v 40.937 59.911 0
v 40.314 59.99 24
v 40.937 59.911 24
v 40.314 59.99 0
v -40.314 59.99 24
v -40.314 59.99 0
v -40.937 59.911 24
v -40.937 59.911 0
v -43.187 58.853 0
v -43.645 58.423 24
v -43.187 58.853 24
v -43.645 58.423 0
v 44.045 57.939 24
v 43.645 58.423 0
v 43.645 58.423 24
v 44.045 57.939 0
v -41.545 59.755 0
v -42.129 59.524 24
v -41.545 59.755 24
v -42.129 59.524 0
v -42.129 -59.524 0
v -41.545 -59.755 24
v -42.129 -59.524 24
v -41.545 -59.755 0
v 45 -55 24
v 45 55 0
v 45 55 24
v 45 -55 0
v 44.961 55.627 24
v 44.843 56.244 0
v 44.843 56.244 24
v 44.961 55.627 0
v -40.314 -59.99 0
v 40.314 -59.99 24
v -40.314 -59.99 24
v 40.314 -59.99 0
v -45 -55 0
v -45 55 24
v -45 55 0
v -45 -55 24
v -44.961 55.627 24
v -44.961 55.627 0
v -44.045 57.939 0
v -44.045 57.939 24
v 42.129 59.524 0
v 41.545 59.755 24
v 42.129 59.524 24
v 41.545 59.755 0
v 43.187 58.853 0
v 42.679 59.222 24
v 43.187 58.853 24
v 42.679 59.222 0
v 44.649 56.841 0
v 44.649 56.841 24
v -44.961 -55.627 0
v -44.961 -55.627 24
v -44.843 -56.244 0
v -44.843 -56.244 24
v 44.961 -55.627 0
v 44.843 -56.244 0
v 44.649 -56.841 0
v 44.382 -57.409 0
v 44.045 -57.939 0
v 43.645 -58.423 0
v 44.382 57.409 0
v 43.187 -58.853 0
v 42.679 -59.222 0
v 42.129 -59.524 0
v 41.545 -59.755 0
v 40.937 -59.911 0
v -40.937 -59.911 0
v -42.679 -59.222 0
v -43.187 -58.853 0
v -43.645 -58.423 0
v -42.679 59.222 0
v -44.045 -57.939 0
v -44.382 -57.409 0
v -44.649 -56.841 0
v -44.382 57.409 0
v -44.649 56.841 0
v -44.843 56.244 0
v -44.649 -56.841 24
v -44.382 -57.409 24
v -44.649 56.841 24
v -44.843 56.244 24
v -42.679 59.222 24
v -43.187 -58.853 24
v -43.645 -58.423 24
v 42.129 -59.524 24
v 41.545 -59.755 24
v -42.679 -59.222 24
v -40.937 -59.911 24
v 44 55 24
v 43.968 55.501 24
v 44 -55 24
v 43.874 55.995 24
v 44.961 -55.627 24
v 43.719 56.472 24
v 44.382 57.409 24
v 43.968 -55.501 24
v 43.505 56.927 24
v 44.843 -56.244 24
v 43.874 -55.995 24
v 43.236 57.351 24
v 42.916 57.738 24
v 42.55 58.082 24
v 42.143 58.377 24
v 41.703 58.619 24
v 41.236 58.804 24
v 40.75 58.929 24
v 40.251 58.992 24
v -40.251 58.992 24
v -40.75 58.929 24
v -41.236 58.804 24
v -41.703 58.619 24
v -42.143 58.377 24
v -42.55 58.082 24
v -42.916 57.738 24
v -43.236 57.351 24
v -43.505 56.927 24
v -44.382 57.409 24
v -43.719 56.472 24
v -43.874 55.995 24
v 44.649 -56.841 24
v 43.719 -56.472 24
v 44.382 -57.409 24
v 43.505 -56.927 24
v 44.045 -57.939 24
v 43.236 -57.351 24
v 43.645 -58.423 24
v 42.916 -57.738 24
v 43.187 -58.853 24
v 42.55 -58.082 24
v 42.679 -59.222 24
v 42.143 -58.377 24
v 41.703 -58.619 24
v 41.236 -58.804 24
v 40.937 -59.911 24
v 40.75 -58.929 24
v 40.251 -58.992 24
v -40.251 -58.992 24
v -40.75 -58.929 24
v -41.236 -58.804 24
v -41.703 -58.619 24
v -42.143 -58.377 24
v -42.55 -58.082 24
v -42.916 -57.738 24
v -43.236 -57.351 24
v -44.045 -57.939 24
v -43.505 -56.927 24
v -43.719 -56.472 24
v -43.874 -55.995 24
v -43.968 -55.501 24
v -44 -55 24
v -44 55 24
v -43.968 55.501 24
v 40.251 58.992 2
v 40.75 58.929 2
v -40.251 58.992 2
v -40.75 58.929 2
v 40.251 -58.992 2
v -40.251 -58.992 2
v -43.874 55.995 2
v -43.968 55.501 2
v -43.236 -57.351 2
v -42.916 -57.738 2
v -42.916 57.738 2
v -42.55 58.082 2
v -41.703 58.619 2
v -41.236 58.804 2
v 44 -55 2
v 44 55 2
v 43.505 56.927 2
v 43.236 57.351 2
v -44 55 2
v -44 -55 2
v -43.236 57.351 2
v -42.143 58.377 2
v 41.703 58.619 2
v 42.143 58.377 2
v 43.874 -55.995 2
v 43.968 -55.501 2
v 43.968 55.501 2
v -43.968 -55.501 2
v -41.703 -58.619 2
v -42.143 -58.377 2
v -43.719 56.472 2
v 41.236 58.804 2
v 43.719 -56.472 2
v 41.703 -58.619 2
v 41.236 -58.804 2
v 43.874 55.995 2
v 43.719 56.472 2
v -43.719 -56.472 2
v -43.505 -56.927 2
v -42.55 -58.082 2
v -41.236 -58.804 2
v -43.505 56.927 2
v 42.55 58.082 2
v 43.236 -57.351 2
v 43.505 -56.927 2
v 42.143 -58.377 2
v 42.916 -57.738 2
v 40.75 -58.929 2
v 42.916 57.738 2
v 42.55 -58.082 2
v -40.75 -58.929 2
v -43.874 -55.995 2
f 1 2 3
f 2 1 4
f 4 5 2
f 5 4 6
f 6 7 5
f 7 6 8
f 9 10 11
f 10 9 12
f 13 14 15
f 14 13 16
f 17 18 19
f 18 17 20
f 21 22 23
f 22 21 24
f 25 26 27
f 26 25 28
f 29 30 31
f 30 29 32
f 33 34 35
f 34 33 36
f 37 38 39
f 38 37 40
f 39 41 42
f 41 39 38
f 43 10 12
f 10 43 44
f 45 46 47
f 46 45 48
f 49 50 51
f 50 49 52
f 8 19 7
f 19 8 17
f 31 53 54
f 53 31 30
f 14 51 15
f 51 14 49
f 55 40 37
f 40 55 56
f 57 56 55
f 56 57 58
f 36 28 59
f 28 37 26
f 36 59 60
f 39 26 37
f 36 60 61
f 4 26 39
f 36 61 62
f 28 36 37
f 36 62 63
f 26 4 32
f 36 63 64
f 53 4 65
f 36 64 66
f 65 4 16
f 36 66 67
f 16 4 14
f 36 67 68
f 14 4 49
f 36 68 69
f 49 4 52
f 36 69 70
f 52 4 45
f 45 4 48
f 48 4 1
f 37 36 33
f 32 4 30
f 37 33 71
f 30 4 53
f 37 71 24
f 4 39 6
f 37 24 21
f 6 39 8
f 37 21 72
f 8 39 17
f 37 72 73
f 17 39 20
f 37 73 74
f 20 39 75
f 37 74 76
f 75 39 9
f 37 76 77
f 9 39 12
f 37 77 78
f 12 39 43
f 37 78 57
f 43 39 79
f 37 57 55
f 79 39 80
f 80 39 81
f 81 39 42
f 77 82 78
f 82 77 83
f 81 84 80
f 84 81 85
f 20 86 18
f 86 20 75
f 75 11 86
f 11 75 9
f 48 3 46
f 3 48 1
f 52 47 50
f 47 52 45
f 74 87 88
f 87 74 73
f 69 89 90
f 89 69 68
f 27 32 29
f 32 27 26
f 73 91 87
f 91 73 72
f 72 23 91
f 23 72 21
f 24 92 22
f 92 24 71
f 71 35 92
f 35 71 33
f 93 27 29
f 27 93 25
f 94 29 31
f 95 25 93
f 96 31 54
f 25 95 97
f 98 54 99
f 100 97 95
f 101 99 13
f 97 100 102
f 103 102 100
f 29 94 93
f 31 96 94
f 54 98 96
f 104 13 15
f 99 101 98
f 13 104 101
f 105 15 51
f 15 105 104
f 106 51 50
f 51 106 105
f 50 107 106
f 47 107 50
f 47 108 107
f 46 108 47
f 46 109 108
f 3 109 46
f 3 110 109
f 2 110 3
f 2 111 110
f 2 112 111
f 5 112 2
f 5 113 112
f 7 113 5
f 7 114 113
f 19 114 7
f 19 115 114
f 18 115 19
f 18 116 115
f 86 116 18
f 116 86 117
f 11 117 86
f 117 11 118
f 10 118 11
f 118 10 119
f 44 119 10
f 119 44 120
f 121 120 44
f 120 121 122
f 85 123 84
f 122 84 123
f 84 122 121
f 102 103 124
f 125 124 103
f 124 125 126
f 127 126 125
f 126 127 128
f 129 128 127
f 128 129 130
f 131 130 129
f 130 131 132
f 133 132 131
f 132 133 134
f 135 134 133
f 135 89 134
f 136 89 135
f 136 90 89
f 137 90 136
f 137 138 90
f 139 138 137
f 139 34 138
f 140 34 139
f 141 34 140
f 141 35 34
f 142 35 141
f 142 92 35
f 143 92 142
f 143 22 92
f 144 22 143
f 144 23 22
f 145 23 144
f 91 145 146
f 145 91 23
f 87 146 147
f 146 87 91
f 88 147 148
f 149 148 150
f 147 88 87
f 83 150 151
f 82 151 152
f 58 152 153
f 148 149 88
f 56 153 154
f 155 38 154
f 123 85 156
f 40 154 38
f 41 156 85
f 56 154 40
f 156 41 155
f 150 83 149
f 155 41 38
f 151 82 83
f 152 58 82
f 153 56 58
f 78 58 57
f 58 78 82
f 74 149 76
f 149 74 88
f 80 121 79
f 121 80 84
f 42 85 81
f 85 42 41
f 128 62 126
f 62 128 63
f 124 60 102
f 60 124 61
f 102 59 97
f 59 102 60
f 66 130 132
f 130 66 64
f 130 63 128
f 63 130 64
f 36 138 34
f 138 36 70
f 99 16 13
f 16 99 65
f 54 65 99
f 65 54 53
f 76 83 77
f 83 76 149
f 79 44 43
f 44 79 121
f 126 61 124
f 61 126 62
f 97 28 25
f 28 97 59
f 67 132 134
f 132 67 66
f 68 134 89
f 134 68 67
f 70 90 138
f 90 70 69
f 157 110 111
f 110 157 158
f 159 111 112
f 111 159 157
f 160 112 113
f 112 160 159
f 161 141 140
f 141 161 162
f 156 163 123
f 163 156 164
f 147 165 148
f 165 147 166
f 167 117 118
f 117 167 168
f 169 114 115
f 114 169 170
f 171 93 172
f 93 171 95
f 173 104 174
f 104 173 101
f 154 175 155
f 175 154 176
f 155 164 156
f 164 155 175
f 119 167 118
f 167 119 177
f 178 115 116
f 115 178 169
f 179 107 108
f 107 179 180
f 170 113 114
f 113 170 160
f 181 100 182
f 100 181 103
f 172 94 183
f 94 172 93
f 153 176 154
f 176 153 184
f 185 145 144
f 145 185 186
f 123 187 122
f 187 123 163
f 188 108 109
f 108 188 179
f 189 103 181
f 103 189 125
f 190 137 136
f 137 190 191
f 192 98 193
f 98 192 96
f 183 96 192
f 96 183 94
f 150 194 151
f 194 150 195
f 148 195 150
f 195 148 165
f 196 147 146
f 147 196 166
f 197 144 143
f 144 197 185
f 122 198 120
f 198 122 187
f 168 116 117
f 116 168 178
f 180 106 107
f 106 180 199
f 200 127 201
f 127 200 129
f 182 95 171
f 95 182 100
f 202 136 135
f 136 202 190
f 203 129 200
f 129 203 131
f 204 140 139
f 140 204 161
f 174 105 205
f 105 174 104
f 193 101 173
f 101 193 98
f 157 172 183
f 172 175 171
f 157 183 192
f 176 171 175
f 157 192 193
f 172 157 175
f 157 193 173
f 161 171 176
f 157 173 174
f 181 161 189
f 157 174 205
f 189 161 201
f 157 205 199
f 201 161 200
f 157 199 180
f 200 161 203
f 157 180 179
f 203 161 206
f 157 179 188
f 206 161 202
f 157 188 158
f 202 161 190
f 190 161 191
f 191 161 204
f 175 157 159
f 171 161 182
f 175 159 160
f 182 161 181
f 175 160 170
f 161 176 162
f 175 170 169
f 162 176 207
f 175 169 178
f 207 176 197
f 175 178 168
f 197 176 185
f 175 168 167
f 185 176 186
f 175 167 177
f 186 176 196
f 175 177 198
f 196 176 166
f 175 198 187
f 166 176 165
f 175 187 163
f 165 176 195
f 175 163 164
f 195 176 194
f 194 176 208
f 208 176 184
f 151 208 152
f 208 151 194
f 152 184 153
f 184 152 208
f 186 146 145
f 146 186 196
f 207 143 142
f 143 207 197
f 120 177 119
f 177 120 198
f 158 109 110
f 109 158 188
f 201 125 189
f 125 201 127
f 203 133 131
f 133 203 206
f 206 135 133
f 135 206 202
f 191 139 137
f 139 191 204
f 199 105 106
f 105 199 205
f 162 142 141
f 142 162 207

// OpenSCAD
$fn = 50;


difference() {
	union() {
		hull() {
			translate(v = [-40.0000000000, 55.0000000000, 0]) {
				cylinder(h = 24, r = 5);
			}
			translate(v = [40.0000000000, 55.0000000000, 0]) {
				cylinder(h = 24, r = 5);
			}
			translate(v = [-40.0000000000, -55.0000000000, 0]) {
				cylinder(h = 24, r = 5);
			}
			translate(v = [40.0000000000, -55.0000000000, 0]) {
				cylinder(h = 24, r = 5);
			}
		}
	}
	union() {
		translate(v = [0, 0, 2]) {
			hull() {
				translate(v = [-40.0000000000, 55.0000000000, 0]) {
					cylinder(h = 22, r = 4);
				}
				translate(v = [40.0000000000, 55.0000000000, 0]) {
					cylinder(h = 22, r = 4);
				}
				translate(v = [-40.0000000000, -55.0000000000, 0]) {
					cylinder(h = 22, r = 4);
				}
				translate(v = [40.0000000000, -55.0000000000, 0]) {
					cylinder(h = 22, r = 4);
				}
			}
		}
	}
}
